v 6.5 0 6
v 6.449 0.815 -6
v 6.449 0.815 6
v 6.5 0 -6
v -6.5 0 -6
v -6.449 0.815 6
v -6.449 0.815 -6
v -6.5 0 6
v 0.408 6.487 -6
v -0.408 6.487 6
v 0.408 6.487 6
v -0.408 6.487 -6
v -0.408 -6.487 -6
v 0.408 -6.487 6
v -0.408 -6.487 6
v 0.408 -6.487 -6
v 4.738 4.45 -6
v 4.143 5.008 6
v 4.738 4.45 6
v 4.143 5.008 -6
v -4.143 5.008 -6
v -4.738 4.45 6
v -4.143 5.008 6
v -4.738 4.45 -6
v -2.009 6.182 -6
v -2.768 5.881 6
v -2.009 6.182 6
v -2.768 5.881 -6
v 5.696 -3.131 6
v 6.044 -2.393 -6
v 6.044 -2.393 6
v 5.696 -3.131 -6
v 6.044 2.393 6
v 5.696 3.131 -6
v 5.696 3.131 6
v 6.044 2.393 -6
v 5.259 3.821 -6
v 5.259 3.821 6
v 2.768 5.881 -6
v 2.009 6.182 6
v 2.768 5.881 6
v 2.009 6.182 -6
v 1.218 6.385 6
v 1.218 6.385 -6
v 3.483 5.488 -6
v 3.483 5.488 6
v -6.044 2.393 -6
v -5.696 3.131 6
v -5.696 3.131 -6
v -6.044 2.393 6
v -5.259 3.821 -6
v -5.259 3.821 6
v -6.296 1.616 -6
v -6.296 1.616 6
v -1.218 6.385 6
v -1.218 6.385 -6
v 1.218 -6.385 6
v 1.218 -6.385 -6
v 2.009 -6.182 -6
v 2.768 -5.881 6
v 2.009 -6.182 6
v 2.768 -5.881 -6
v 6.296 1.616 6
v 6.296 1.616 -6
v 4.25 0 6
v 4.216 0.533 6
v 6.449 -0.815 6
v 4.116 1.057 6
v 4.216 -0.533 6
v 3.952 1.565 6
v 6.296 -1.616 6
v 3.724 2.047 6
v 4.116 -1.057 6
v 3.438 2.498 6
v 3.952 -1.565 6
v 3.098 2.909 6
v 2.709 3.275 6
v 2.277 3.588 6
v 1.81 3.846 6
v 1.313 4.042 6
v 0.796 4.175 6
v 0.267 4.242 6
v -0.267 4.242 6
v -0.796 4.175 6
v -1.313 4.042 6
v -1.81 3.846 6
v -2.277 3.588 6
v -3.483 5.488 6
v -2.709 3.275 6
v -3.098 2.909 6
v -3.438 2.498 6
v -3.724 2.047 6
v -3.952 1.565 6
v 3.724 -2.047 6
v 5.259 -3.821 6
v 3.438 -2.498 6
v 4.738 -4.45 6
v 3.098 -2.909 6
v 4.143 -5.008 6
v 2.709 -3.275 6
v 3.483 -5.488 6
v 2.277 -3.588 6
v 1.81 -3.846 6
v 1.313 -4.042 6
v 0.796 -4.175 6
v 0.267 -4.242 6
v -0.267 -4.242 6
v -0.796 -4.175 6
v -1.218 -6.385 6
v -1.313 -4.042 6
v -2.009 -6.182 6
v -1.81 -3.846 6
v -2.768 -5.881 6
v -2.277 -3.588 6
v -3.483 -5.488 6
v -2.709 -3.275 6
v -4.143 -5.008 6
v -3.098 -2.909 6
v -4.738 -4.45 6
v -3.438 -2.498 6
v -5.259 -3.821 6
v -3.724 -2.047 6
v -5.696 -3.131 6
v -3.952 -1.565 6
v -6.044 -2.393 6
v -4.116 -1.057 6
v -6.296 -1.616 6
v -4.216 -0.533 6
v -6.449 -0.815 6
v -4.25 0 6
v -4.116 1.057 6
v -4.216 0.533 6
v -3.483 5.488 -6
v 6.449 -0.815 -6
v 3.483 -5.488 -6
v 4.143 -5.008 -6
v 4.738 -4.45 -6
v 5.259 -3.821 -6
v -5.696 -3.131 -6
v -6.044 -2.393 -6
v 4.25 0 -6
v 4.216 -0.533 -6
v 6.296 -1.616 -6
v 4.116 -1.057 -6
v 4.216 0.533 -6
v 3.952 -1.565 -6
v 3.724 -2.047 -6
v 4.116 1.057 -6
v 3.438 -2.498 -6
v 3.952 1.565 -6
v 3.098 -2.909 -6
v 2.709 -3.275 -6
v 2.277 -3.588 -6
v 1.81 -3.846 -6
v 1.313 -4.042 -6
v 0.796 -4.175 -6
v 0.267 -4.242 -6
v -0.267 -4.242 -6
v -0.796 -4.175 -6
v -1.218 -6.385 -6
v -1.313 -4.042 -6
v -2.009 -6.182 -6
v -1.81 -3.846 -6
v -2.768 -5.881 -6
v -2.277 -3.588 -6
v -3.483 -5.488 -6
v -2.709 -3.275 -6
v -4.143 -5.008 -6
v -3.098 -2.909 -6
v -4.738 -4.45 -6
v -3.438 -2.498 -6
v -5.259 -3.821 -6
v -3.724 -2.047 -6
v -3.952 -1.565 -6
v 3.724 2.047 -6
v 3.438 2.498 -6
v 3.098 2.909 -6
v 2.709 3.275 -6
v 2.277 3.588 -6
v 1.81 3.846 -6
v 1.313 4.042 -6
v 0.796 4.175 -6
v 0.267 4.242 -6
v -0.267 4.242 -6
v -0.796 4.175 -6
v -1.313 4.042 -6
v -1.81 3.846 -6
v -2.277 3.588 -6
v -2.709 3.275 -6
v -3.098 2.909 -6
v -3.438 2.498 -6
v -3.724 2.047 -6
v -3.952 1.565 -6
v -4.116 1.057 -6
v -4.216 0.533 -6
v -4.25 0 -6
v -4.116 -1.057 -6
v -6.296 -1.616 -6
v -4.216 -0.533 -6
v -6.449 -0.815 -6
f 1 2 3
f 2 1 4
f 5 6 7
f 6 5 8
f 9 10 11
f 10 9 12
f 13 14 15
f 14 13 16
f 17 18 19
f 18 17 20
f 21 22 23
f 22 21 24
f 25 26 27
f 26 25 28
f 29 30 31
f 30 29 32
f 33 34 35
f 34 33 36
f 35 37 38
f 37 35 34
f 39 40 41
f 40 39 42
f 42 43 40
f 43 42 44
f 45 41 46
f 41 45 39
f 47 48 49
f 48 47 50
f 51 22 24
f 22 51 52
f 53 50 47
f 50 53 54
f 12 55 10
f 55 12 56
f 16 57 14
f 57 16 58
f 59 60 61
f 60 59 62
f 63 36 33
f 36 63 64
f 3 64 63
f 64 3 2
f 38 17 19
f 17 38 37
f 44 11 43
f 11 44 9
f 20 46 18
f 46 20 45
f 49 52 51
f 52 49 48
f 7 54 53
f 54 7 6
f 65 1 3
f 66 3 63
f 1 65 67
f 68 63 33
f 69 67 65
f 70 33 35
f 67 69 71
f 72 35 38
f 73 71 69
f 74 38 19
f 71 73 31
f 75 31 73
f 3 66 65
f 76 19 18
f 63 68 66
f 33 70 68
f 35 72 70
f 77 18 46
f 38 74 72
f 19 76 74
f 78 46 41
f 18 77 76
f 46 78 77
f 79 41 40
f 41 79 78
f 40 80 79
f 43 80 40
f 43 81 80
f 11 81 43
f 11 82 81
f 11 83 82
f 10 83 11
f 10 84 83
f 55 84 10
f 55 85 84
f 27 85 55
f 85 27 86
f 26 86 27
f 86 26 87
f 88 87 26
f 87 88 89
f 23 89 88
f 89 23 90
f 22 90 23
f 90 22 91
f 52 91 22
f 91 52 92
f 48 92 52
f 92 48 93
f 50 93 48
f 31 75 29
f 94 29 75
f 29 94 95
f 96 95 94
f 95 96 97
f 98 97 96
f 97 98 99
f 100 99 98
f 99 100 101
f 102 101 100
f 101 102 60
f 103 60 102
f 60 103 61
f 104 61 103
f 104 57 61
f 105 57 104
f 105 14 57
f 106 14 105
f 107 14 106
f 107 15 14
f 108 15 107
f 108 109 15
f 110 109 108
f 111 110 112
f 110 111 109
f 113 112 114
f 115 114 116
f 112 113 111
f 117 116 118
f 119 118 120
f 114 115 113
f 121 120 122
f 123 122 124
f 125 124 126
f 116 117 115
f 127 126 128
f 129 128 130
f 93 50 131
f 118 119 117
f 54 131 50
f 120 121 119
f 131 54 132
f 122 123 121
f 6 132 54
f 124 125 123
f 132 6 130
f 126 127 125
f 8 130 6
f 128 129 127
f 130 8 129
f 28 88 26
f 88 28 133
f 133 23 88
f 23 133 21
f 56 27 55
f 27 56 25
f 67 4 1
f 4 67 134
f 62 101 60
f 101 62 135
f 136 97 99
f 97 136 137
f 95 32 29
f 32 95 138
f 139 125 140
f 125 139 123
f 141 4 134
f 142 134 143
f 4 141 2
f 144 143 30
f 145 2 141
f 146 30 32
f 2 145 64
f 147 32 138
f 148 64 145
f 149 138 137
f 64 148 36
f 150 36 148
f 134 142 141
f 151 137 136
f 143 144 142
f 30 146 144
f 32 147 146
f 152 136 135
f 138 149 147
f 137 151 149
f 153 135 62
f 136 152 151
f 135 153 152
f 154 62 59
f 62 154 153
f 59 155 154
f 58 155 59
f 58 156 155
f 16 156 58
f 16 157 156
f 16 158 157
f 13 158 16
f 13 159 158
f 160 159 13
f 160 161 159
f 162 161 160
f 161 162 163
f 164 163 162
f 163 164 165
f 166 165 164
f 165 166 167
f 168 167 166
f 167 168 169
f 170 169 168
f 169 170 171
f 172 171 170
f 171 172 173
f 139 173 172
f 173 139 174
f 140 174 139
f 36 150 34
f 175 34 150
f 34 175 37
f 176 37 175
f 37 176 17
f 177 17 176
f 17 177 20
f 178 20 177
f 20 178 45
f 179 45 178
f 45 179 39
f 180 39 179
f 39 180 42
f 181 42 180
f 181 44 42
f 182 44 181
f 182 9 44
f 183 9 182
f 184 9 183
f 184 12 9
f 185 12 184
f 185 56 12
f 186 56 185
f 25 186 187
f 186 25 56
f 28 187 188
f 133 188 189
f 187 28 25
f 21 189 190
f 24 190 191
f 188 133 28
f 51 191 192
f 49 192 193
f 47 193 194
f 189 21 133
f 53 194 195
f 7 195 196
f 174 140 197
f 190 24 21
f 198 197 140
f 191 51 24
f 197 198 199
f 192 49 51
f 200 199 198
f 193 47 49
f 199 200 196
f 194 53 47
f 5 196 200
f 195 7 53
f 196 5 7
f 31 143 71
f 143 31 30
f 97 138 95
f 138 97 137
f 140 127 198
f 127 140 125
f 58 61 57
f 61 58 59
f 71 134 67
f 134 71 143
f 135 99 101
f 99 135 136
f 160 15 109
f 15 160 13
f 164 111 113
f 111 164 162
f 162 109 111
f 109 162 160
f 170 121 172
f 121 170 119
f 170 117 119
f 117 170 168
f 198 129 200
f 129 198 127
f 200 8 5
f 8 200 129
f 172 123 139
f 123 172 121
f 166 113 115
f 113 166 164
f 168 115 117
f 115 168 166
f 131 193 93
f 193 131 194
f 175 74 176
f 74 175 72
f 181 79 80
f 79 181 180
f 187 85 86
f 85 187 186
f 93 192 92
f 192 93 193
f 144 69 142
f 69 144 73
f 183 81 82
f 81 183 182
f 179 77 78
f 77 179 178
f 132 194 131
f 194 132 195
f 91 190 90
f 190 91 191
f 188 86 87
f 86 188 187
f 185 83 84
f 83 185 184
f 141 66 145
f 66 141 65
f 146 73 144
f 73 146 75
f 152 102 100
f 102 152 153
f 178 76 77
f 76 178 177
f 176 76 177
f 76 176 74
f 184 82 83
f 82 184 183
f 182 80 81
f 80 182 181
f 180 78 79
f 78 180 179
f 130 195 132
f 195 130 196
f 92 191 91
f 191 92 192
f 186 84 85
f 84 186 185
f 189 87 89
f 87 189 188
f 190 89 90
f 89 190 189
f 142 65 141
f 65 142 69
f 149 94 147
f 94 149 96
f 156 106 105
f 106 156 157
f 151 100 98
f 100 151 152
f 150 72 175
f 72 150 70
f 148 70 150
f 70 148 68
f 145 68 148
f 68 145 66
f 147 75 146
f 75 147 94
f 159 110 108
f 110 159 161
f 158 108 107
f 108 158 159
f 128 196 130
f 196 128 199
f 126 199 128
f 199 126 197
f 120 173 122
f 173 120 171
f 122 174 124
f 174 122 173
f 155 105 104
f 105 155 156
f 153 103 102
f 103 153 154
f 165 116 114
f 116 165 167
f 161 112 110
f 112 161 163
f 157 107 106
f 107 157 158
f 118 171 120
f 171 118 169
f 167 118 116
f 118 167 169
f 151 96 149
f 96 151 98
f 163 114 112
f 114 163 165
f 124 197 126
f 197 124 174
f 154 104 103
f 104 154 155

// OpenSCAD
$fn = 50;


difference() {
	union() {
		translate(v = [0, 0, -6.0000000000]) {
			cylinder(h = 12, r = 6.5000000000);
		}
	}
	union() {
		translate(v = [0, 0, -100.0000000000]) {
			cylinder(h = 200, r = 4.2500000000);
		}
	}
}
